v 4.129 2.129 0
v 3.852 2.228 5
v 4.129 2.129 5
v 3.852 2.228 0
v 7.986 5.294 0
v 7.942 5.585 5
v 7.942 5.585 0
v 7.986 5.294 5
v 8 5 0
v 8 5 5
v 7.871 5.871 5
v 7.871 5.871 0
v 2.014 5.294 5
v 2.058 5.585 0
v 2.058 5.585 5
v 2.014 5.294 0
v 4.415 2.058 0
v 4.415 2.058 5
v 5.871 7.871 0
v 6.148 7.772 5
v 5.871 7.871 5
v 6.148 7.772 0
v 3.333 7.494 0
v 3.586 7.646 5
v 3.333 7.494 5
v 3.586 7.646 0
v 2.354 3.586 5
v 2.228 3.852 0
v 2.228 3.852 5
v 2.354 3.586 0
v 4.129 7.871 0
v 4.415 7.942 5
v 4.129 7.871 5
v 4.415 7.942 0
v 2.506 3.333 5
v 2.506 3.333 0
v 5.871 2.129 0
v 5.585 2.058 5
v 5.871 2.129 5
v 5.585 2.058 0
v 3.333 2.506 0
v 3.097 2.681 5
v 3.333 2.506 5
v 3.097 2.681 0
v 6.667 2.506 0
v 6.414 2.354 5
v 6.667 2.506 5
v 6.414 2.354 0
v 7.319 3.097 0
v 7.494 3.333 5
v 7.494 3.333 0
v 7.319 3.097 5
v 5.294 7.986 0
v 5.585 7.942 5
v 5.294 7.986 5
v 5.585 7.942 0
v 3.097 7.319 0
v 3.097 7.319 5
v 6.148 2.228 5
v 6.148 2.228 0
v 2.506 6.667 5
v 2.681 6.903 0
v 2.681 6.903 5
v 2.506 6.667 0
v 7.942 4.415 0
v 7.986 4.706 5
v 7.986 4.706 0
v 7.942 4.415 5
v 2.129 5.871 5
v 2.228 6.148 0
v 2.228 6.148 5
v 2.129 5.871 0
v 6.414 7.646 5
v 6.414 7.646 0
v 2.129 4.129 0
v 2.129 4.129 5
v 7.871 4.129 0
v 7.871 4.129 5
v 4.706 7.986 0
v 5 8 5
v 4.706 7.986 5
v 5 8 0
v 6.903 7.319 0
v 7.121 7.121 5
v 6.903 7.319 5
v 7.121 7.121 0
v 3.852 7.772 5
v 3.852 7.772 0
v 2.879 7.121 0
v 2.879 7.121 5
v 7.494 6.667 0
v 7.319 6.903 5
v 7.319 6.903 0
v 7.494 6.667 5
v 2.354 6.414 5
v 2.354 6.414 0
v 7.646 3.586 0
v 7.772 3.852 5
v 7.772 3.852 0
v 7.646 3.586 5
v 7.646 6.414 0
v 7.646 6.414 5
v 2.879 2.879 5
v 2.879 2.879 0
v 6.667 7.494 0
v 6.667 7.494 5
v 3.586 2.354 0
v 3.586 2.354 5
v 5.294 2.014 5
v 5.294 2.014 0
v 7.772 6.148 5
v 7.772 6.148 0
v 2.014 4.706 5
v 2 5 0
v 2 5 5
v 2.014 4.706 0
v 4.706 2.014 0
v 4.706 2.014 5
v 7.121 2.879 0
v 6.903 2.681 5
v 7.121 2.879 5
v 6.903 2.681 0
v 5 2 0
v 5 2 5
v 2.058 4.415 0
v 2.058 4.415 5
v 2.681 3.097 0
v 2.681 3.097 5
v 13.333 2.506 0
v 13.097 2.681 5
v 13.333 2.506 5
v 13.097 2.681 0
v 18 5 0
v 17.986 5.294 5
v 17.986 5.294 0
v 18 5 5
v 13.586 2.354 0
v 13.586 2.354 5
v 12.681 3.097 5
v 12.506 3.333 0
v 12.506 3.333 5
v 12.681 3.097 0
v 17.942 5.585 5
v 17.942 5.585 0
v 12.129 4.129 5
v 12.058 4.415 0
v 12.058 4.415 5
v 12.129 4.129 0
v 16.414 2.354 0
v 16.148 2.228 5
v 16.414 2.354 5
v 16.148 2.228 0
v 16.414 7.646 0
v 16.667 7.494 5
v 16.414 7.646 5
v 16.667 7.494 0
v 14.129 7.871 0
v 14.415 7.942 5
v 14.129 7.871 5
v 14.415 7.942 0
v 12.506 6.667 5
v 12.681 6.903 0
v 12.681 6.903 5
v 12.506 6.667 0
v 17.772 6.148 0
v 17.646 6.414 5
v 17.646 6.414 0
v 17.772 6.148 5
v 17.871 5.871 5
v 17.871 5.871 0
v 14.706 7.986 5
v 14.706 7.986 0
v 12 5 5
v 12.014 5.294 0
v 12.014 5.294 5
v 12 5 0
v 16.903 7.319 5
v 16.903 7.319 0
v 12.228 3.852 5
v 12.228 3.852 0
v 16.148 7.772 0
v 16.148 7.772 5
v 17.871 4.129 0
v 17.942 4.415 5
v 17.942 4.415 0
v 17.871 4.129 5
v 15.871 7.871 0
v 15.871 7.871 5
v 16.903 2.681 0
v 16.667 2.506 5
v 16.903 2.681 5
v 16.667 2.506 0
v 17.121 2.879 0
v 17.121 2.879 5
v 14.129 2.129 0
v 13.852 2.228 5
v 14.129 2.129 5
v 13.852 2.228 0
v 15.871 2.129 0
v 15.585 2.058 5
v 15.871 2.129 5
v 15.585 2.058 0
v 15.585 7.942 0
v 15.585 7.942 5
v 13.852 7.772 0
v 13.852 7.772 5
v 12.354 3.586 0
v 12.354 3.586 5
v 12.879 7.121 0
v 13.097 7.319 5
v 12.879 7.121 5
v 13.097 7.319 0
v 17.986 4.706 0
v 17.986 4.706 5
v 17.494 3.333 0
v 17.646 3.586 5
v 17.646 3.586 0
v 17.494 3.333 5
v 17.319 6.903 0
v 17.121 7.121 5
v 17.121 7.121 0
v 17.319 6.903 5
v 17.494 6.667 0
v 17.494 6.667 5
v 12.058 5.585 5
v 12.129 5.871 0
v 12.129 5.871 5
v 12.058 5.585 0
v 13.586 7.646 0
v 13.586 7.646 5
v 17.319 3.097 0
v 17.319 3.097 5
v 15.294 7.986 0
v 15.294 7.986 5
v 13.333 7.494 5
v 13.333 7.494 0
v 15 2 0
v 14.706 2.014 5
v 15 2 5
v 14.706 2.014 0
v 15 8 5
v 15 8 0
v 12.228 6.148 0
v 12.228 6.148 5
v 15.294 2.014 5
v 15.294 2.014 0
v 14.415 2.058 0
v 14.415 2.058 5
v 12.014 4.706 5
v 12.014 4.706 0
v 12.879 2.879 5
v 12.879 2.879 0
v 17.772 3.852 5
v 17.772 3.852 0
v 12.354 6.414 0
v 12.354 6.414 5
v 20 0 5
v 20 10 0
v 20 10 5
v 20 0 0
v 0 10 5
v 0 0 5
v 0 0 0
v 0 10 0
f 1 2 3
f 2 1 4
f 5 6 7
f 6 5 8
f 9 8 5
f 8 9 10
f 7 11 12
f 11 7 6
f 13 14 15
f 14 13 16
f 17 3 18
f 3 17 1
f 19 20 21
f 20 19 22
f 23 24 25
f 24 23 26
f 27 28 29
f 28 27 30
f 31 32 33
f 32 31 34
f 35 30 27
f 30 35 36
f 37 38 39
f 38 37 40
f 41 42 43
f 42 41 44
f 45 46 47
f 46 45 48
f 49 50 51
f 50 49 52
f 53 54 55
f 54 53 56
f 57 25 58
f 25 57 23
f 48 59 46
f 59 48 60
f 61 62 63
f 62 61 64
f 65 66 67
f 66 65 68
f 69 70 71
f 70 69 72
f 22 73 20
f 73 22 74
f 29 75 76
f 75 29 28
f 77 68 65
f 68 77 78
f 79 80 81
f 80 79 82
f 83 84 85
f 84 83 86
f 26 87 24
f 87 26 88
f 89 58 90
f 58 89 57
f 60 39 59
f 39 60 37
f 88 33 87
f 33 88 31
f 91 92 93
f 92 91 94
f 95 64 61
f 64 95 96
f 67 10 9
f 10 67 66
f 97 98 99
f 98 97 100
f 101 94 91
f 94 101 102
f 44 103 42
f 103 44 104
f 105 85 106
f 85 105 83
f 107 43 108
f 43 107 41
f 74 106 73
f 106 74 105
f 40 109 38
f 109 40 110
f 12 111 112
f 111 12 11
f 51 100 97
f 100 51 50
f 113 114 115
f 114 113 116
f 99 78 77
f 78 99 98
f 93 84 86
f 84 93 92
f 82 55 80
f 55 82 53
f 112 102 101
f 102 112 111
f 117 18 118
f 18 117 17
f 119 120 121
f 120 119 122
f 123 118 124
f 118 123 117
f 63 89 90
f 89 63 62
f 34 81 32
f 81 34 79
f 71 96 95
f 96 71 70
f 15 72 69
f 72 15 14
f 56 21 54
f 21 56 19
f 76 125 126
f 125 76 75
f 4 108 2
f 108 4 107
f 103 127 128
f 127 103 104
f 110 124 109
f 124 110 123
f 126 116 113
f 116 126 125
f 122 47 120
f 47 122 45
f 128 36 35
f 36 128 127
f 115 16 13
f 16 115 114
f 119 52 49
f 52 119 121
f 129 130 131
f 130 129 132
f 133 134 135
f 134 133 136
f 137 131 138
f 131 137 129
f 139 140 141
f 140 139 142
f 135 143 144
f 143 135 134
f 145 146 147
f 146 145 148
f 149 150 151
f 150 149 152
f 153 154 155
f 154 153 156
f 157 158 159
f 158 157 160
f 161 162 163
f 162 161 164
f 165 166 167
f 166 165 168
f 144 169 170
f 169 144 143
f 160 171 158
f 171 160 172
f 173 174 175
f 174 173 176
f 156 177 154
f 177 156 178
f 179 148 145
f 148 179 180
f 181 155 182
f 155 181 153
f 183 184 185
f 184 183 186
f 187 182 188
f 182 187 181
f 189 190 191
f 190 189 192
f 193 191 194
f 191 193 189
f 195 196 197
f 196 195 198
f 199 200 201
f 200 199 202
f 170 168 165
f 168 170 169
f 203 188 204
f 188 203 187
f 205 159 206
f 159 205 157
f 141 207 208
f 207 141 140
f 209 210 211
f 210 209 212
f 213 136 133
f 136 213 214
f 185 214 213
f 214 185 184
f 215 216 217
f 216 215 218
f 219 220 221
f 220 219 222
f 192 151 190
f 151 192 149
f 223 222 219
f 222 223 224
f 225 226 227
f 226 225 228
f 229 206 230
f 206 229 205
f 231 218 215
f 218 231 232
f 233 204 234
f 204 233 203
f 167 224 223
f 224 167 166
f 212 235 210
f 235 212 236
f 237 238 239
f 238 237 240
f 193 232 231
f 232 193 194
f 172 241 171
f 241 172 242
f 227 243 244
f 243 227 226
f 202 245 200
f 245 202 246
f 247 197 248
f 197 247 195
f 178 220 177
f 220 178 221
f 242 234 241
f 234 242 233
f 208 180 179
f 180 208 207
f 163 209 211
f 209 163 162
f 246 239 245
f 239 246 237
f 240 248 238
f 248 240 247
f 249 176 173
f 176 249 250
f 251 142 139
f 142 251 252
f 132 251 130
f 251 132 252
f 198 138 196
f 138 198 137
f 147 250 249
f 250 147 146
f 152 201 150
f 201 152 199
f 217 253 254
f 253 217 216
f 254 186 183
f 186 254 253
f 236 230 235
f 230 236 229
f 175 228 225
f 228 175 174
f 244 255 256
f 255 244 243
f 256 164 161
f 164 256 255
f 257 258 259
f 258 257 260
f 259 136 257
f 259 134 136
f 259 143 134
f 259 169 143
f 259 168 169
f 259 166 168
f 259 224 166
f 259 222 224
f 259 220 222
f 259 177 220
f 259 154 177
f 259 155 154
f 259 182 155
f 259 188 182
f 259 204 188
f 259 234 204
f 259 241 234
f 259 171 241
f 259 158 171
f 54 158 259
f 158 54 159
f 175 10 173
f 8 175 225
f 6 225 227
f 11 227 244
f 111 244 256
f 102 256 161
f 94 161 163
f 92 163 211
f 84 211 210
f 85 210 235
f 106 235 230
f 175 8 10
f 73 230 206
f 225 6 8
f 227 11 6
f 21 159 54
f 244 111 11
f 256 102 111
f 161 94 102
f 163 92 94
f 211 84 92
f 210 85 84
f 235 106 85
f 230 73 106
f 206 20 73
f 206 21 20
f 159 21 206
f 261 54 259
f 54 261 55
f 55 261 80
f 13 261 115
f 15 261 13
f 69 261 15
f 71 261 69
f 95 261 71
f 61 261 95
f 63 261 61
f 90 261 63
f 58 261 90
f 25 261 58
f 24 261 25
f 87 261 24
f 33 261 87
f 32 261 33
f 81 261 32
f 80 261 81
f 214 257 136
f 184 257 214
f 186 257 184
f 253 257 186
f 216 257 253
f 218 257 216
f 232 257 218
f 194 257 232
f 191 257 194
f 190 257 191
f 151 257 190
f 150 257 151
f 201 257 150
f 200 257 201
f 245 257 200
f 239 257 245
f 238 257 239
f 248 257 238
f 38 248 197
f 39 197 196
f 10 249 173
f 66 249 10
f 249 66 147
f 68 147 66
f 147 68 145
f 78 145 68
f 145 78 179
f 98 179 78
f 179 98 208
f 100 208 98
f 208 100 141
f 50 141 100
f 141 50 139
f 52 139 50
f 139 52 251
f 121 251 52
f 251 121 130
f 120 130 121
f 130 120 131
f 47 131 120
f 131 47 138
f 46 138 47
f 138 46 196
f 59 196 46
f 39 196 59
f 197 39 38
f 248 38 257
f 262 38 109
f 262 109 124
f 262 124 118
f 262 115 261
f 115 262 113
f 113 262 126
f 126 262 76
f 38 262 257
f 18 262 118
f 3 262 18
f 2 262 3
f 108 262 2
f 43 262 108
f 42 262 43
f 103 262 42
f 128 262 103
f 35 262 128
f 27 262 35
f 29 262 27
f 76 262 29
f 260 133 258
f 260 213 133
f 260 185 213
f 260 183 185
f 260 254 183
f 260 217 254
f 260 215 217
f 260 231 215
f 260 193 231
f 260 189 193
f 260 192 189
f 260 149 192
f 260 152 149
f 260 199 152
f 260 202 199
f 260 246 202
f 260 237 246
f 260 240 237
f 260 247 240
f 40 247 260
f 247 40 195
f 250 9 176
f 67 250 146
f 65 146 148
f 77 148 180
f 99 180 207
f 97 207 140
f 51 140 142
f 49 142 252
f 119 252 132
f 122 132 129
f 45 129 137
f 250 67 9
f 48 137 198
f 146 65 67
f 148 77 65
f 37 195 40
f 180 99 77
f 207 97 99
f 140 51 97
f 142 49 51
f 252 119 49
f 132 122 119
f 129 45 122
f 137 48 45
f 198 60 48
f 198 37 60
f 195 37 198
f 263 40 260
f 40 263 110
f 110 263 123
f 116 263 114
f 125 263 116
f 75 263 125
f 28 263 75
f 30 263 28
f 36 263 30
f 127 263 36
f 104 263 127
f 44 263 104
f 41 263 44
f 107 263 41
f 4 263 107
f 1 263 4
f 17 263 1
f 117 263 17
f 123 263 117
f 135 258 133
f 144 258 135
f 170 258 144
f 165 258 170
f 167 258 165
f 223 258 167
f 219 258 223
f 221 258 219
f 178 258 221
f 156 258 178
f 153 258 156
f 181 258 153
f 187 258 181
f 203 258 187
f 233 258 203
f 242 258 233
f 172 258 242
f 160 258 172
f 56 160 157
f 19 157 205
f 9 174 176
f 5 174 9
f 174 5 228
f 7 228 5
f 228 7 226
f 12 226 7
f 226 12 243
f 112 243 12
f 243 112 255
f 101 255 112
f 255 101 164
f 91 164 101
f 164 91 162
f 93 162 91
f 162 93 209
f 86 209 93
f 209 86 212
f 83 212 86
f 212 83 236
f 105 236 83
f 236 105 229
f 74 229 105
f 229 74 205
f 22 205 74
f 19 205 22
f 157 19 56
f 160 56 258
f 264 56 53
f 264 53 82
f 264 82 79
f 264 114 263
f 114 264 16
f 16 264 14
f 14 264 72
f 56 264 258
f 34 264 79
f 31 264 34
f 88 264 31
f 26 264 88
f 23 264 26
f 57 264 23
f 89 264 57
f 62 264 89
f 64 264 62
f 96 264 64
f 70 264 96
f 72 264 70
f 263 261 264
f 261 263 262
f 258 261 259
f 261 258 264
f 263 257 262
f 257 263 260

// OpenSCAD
// file: lib/constants.scad
//
// Global constants for all parts
//
// (C) 2019 Johannes Ernst.
// License: see package.
//

$version = "stacky-v1"; // version identifier to be etched into parts

$fn = 64;         // smoothness

$dx_unit = 10;    // main grid unit in x direction
$dy_unit = 10;    // main grid unit in y direction
$dz_unit = 10;    // main grid unit in z direction

$r1 = 3;          // peg radius
$r2 = 5;          // radius of the end of taper of peg

$play = 0.02;     // gap between surface and nominal location so that
                  // it can move against another surface at the same
                  // nominal location
$play2 = 2*$play; // convenience constant

$eps = 0.002;     // add this to avoid numeric almost-equals
$eps2 = 2*$eps;   // convenience constant
// file: lib/foot_A.scad
//
// Foot for Board "A" template
//
// (C) 2019 Johannes Ernst.
// License: see package.
//

include <constants.scad>

module foot_A( xu, yu, zu ) {
    h = $dz_unit * zu;

    difference() {
        cube( [ xu * $dx_unit, yu * $dy_unit, h ] );

        for( ix = [0:xu-1] ) {
            for( iy = [0:yu-1] ) {
                translate( [ $dx_unit * ix + $dx_unit/2, $dy_unit * iy + $dy_unit/2, -$eps ] ) {
                    cylinder( r = $r1, h = h + 2 * $eps );
                };
            };
        };

    }
};
// main file
//
// Stacky Double-Foot for Board "A" 0.5cm
//
// (C) 2019 Johannes Ernst.
// License: see package.
//

include <lib/foot_A.scad>

foot_A( 2, 1, 0.5 );
